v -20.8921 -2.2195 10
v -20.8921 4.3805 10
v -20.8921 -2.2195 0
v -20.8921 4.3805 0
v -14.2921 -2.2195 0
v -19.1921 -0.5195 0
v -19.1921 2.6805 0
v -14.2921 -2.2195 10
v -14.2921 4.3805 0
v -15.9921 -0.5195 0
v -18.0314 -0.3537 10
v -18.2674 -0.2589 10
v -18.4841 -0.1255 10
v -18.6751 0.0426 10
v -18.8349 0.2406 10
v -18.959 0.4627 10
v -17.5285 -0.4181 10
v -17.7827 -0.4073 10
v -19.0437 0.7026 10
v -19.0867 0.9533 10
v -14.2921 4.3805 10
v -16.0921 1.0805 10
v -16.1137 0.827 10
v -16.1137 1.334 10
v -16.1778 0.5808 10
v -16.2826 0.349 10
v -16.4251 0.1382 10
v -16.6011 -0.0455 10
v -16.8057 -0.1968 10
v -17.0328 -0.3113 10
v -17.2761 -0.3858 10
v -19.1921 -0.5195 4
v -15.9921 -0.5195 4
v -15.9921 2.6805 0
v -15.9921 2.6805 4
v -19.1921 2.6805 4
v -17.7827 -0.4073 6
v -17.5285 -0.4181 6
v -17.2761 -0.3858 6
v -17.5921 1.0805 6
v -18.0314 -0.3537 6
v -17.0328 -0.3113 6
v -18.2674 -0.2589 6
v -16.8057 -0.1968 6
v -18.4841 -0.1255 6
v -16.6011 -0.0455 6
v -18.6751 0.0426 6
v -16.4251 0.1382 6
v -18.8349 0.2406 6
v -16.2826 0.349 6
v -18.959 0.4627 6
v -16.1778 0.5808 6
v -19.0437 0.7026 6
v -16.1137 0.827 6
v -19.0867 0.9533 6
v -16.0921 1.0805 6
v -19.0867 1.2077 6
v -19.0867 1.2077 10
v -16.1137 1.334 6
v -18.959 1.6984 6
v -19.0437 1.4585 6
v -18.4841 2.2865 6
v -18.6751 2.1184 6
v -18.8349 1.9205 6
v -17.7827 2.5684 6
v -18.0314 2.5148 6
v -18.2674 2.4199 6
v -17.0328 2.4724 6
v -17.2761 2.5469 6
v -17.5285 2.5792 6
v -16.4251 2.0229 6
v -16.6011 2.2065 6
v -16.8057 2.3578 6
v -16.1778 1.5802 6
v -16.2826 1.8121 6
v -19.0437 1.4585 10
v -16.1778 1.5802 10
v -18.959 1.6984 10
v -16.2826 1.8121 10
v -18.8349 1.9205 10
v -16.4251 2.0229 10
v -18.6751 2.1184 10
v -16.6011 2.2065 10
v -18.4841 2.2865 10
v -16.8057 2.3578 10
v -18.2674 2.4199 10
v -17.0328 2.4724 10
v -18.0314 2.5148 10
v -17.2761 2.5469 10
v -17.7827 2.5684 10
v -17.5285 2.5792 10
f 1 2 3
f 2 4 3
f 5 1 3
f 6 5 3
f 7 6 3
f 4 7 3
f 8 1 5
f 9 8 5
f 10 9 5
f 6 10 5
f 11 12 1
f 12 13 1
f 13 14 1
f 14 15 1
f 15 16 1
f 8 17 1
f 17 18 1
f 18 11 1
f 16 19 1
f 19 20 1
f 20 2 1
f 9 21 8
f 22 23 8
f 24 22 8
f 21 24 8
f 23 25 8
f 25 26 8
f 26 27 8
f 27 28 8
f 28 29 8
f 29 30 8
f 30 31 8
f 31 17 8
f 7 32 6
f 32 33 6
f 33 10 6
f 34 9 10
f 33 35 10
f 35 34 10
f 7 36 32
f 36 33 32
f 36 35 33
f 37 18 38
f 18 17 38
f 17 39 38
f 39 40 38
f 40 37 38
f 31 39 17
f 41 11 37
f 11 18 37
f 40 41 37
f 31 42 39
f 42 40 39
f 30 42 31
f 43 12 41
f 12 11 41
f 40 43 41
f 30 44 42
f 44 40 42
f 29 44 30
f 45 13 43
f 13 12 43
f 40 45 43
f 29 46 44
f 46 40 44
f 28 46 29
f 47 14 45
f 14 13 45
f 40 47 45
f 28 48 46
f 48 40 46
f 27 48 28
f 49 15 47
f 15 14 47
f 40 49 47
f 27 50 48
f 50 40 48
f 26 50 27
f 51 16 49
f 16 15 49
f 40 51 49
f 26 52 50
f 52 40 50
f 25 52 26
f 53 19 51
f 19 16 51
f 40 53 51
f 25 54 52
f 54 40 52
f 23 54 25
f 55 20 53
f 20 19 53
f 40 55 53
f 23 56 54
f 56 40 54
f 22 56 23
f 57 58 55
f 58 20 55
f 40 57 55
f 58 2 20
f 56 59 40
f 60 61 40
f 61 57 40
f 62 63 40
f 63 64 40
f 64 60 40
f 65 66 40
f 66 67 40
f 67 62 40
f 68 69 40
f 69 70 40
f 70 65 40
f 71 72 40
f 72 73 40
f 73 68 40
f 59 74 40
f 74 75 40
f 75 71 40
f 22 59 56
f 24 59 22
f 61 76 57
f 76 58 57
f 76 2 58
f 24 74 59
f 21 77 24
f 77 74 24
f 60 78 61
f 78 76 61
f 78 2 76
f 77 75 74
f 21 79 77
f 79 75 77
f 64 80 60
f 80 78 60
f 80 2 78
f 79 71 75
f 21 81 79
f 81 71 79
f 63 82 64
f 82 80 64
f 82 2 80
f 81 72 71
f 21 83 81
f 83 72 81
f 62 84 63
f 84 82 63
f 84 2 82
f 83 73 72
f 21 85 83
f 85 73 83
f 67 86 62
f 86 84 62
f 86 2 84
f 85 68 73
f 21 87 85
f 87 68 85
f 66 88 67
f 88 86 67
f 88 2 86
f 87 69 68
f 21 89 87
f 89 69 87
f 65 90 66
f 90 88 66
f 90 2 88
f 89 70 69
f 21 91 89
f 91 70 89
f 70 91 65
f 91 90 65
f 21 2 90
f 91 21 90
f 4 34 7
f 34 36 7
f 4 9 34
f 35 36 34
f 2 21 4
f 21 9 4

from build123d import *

# Parameters (mm, degrees)
CROQUIS1_W              = 6.6
CROQUIS1_H              = 6.6
SALIENTE_EXTRUIR1_DEPTH = 10
CROQUIS2_R              = 1.5
CORTAR_EXTRUIR1_DEPTH   = 4
CROQUIS3_W              = 3.2
CROQUIS3_H              = 3.2
CORTAR_EXTRUIR2_DEPTH   = 4


with BuildPart() as part:
    # Croquis1 → Saliente-Extruir1 (new body)
    with BuildSketch(Plane.XY):
        with Locations((-17.592123702, 1.080530973)):
            Rectangle(CROQUIS1_W, CROQUIS1_H)
    extrude(amount=SALIENTE_EXTRUIR1_DEPTH)

    # Croquis2 → Cortar-Extruir1 (cut)
    with BuildSketch(Plane.XY.offset(10)):
        with Locations((-17.592123702, 1.080530973)):
            Circle(CROQUIS2_R)
    extrude(amount=-CORTAR_EXTRUIR1_DEPTH, mode=Mode.SUBTRACT)

    # Croquis3 → Cortar-Extruir2 (cut)
    with BuildSketch(Plane(origin=(0, 0, 0), x_dir=(-1, 0, 0), z_dir=(0, 0, -1))):
        with Locations((17.592123702, 1.080530973)):
            Rectangle(CROQUIS3_W, CROQUIS3_H)
    extrude(amount=-CORTAR_EXTRUIR2_DEPTH, mode=Mode.SUBTRACT)


solid = part.part
